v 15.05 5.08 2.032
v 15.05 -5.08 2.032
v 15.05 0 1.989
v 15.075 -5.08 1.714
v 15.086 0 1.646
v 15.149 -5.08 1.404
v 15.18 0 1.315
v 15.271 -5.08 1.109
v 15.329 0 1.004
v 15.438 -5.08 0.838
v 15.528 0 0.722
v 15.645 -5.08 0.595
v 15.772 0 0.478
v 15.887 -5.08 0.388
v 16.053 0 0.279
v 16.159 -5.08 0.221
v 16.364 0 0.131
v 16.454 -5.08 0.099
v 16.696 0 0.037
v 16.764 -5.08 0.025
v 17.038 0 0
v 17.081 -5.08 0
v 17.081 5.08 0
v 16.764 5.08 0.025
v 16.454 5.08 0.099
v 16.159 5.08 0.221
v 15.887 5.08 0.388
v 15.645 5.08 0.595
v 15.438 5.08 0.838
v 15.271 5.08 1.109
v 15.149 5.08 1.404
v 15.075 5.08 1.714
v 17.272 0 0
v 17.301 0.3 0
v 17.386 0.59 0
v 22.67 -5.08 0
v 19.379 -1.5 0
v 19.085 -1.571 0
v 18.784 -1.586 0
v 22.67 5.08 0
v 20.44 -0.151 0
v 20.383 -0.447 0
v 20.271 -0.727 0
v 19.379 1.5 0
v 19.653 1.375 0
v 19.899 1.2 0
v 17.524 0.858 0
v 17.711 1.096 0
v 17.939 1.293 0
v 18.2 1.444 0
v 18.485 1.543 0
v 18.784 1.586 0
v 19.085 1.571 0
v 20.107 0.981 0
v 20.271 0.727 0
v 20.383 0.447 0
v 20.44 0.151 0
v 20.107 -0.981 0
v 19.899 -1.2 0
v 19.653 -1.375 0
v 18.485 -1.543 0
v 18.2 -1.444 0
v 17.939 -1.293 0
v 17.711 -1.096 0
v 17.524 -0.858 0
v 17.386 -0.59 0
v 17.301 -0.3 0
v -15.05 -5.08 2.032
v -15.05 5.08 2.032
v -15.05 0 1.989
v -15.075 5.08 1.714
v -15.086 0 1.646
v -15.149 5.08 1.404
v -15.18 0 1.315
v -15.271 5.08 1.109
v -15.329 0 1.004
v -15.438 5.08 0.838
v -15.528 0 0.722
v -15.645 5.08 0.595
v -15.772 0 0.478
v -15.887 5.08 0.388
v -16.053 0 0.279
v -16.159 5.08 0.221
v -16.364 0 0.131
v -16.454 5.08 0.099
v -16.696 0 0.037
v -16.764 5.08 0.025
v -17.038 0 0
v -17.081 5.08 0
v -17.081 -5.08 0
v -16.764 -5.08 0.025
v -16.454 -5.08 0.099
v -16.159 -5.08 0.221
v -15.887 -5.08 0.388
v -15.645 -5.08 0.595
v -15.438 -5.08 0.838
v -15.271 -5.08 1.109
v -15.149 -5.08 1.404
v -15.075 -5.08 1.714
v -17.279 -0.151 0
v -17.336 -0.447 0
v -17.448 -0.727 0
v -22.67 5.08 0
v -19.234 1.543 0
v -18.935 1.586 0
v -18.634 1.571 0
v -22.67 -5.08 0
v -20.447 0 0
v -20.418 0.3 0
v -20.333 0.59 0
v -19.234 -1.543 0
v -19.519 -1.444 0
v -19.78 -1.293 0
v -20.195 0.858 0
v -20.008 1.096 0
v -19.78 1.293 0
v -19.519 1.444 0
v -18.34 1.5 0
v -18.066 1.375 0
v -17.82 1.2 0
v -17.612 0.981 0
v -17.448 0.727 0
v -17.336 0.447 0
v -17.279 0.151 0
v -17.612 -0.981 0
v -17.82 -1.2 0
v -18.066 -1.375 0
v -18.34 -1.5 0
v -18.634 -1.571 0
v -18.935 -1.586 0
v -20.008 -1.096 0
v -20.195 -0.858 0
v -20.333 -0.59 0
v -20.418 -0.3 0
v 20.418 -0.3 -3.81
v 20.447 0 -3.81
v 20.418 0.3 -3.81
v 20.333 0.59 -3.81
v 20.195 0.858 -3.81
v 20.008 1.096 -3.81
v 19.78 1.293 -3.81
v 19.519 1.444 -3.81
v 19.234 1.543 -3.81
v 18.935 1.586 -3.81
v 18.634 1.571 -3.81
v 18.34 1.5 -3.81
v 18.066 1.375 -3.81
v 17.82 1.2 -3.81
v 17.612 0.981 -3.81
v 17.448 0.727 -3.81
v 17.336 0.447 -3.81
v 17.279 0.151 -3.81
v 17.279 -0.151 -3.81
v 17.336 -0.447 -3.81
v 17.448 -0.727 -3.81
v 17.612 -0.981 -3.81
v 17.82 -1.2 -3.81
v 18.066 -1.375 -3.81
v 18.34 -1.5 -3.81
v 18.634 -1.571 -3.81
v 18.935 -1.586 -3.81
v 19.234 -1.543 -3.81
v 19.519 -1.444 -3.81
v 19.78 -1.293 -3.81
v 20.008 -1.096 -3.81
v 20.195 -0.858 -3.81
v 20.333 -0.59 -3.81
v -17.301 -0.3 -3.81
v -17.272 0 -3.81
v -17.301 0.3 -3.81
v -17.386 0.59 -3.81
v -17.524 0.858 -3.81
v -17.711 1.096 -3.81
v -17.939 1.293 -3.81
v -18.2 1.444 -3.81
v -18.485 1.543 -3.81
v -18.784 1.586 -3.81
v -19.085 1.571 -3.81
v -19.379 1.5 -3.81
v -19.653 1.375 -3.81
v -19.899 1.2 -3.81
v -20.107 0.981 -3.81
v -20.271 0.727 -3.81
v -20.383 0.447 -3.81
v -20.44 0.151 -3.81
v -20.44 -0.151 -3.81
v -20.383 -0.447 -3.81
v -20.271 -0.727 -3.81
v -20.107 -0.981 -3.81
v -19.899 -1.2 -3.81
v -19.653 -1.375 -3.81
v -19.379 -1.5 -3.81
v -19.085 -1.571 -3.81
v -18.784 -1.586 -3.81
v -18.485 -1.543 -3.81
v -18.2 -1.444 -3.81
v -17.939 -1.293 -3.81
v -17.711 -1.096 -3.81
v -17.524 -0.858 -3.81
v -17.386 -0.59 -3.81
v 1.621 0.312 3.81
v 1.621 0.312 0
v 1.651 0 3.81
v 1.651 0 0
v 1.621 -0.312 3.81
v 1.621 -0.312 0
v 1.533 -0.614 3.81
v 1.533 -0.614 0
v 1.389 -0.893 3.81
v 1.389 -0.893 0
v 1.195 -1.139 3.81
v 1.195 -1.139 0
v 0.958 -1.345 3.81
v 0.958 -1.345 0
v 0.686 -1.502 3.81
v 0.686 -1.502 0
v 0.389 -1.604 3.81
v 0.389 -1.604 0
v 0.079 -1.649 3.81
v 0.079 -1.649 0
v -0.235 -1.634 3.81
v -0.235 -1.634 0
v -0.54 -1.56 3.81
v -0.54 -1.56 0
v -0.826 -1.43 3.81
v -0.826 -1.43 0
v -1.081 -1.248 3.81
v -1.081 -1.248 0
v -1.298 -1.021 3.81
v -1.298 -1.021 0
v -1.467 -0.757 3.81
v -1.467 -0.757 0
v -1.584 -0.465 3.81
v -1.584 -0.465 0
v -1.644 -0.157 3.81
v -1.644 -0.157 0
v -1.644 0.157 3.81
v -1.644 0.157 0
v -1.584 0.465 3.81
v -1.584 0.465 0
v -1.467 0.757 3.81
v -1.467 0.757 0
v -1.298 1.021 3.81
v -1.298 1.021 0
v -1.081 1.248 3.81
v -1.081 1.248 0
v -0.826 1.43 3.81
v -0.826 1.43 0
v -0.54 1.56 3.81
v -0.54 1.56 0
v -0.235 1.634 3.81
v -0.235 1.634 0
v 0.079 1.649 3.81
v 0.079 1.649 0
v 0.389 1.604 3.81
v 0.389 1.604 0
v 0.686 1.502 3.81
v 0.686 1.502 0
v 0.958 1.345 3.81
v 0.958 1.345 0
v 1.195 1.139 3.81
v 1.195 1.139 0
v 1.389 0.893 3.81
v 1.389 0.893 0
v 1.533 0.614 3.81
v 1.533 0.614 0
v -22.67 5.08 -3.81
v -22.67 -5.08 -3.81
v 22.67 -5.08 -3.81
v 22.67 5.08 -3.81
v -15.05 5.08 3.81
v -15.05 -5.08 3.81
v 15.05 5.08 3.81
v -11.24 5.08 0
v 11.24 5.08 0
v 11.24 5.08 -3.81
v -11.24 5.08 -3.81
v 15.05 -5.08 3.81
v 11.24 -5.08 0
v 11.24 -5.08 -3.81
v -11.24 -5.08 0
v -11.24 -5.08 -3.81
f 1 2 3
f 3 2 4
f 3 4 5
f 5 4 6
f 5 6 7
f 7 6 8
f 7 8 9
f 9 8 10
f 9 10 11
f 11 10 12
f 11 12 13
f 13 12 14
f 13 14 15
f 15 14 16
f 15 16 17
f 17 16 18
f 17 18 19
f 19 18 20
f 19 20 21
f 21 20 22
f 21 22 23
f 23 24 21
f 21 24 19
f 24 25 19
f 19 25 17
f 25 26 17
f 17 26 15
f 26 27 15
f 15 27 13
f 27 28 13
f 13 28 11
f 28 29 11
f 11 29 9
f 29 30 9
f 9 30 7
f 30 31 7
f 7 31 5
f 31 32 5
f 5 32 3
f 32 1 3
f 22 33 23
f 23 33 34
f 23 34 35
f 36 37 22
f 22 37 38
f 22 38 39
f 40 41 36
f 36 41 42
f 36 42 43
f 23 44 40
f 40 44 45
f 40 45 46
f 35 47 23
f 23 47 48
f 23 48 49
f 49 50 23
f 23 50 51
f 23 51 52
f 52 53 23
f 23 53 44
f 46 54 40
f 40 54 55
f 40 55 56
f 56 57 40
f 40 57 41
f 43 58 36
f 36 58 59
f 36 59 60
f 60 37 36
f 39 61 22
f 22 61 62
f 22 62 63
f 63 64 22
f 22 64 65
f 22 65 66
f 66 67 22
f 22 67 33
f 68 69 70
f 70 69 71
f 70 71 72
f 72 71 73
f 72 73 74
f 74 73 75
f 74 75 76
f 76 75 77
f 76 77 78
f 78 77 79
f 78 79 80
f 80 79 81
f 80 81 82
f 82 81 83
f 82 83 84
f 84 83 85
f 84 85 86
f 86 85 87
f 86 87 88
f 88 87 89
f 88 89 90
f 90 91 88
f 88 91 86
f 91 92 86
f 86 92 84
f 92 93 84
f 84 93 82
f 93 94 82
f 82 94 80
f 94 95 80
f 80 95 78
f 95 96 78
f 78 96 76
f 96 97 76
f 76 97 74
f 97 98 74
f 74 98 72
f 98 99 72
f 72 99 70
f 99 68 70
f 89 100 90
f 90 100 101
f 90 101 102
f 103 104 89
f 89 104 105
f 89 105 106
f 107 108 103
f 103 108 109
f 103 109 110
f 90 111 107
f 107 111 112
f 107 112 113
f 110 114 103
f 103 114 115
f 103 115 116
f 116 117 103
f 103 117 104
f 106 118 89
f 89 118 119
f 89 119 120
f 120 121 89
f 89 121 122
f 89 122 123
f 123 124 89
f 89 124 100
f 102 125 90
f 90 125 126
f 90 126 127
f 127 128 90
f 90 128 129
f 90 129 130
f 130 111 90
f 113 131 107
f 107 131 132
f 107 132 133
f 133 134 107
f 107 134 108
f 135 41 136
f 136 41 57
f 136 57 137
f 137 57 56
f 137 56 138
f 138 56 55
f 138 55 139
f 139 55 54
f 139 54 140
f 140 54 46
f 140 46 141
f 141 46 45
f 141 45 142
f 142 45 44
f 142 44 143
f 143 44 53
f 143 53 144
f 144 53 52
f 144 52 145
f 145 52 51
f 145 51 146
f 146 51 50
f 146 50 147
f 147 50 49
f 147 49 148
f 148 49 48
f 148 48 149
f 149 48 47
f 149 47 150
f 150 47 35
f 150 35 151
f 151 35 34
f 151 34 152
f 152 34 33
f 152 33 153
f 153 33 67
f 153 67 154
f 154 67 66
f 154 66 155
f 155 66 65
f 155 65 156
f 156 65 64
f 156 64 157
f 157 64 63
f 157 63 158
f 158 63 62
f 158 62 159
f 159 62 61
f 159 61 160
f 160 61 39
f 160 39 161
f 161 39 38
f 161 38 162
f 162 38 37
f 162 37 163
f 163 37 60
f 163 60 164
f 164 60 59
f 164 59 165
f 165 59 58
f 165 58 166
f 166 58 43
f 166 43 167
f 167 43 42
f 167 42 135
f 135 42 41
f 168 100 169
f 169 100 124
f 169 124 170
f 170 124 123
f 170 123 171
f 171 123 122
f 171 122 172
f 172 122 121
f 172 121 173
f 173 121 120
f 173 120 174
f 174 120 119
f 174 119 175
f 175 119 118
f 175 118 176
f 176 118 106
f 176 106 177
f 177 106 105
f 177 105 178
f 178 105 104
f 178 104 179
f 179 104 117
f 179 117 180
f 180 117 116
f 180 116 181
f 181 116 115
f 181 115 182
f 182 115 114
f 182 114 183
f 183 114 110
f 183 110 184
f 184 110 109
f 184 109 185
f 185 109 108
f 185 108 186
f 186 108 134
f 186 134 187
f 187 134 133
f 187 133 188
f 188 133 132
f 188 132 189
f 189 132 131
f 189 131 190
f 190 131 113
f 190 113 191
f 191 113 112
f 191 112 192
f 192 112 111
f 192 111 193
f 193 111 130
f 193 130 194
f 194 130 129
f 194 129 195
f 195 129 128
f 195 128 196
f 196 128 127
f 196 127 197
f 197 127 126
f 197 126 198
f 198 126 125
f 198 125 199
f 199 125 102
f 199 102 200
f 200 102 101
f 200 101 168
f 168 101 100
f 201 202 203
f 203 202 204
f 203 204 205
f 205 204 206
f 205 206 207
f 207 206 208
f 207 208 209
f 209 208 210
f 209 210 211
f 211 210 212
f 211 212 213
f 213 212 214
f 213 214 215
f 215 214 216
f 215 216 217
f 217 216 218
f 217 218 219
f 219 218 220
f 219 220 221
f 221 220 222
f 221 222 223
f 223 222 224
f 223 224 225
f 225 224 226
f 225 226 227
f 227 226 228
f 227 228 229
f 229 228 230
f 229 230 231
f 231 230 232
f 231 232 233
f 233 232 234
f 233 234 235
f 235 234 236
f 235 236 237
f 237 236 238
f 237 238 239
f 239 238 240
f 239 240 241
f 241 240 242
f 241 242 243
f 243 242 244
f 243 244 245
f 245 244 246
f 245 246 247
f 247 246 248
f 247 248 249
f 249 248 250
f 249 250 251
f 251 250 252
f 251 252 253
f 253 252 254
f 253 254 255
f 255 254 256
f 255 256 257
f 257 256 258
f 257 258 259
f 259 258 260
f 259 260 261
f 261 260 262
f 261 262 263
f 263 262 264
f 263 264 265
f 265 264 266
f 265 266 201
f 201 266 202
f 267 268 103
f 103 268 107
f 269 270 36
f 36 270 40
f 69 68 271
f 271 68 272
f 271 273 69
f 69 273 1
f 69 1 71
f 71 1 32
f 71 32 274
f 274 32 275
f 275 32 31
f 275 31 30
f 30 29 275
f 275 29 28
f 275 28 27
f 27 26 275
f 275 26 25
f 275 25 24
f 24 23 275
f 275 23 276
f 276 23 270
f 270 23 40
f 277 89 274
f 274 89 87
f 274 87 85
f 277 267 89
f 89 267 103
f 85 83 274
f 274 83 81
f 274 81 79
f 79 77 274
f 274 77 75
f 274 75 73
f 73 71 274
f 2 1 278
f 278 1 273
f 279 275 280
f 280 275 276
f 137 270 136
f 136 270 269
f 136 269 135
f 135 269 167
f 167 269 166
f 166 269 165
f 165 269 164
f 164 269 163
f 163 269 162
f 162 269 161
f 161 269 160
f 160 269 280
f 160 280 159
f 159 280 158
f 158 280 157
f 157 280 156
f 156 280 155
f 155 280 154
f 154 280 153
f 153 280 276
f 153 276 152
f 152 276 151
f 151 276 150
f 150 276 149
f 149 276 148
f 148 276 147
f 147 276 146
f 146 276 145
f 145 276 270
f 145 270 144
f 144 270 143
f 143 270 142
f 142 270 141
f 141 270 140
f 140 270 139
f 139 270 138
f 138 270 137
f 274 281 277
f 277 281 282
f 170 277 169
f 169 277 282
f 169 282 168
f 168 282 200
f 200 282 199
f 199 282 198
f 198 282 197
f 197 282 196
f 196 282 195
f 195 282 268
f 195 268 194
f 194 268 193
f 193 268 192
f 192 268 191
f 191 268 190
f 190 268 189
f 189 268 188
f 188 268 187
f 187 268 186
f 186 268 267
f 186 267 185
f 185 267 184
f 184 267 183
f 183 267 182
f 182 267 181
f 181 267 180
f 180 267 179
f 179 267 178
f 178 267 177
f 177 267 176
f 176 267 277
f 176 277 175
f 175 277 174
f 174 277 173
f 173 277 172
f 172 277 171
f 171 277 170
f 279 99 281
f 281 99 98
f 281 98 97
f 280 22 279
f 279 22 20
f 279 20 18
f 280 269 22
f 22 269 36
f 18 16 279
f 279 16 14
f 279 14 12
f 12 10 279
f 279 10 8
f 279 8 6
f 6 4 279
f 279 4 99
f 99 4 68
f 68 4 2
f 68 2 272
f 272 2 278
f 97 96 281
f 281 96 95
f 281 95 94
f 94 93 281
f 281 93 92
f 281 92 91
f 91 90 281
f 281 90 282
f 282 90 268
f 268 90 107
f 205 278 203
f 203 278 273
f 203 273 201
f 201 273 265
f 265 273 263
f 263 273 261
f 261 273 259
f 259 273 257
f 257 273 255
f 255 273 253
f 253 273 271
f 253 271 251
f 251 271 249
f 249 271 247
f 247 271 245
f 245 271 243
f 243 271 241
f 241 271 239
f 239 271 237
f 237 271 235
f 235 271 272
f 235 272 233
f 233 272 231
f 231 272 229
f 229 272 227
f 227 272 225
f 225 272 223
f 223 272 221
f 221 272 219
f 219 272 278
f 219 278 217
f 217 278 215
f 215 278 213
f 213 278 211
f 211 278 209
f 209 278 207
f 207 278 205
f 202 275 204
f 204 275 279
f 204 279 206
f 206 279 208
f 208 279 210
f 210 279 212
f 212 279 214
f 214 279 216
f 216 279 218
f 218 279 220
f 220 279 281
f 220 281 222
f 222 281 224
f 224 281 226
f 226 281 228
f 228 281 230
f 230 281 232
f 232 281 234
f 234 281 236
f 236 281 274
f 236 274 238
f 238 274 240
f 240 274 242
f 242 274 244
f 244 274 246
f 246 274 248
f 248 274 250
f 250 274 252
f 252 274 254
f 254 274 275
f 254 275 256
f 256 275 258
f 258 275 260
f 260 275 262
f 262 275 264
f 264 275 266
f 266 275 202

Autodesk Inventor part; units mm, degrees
ref_plane "YZ Plane" through (0, 0, 0) normal (1, 0, 0) x (0, 1, 0)
ref_plane "XZ Plane" through (0, 0, 0) normal (0, 1, 0) x (-1, 0, 0)
ref_plane "XY Plane" through (0, 0, 0) normal (0, 0, 1) x (1, 0, 0)
sketch "Sketch1" plane through (0, 0, 0) normal (0, 0, 1) x (1, 0, 0)
  line L0 (-11.2395, -5.08) -> (11.2395, -5.08)
  line L1 (11.2395, -5.08) -> (11.2395, 5.08)
  line L2 (11.2395, 5.08) -> (-11.2395, 5.08)
  line L3 (-11.2395, 5.08) -> (-11.2395, -5.08)
  line L4 (-11.2395, -5.08) -> (11.2395, 5.08) construction
  line L5 (11.2395, -5.08) -> (-11.2395, 5.08) construction
  point P0 (0, 0)
  dimension "d0" = 22.479
  dimension "d1" = 10.16
extrude "Extrusion1" add sketch "Sketch1" along normal blind 3.81
sketch "Sketch2" plane through (0, 0, 3.81) normal (0, 0, 1) x (1, 0, 0)
  line L0 (11.2395, 5.08) -> (-11.2395, 5.08) projected
  line L1 (-11.2395, 5.08) -> (-15.0495, 5.08)
  line L2 (-15.0495, 5.08) -> (-15.0495, -5.08)
  line L3 (-15.0495, -5.08) -> (-11.2395, -5.08)
  line L4 (-11.2395, -5.08) -> (-11.2395, 5.08)
  line L5 (11.2395, -5.08) -> (11.2395, 5.08) projected
  line L6 (11.2395, 5.08) -> (15.0495, 5.08)
  line L7 (15.0495, 5.08) -> (15.0495, -5.08)
  line L8 (15.0495, -5.08) -> (11.2395, -5.08)
  line L9 (11.2395, -5.08) -> (11.2395, 5.08)
  point P0 (0, 0)
  dimension "d4" = 3.81
  dimension "d5" = 10.16
  dimension "d6" = 3.81
extrude "Extrusion2" add sketch "Sketch2" against normal blind 7.62
sketch "Sketch3" plane through (0, 0, -3.81) normal (0, 0, -1) x (-1, 0, 0)
  line L0 (-11.2395, -5.08) -> (-11.2395, 5.08) projected
  line L1 (-11.2395, 5.08) -> (-22.6695, 5.08)
  line L2 (-22.6695, 5.08) -> (-22.6695, -5.08)
  line L3 (-22.6695, -5.08) -> (-11.2395, -5.08)
  line L4 (-11.2395, -5.08) -> (-11.2395, 5.08)
  line L5 (11.2395, 5.08) -> (11.2395, -5.08) projected
  line L6 (11.2395, 5.08) -> (22.6695, 5.08)
  line L7 (22.6695, 5.08) -> (22.6695, -5.08)
  line L8 (22.6695, -5.08) -> (11.2395, -5.08)
  line L9 (11.2395, -5.08) -> (11.2395, 5.08)
  point P0 (0, 0)
  dimension "d9" = 11.43
  dimension "d10" = 10.16
  dimension "d11" = 11.43
  dimension "d12" = 10.16
extrude "Extrusion3" add sketch "Sketch3" against normal blind 3.81
sketch "Sketch4" plane through (0, 0, 0) normal (0, 0, -1) x (-1, 0, 0)
  circle A0 centre (0, 0) radius 1.651
  dimension "d15" = 3.302
extrude "Extrusion4" cut sketch "Sketch4" against normal through all
sketch "Sketch5" plane through (0, 0, 0) normal (0, 0, 1) x (1, 0, 0)
  line L0 (15.0495, -5.08) -> (22.6695, -5.08) projected
  line L1 (-22.6695, -5.08) -> (-15.0495, -5.08) projected
  line L2 (22.6695, -5.08) -> (22.6695, 5.08) projected
  line L3 (-22.6695, 5.08) -> (-22.6695, -5.08) projected
  point P0 (0, 0)
  point P1 (-18.8595, 0)
  point P2 (18.8595, 0)
  dimension "d18" = 5.08
  dimension "d19" = 5.08
  dimension "d20" = 3.81
  dimension "d21" = 3.81
hole "Hole1" at (-18.8595, 0, 0) at (18.8595, 0, 0) direction (0, 0, -1) diameter 3.175 end through all
fillet "Fillet1" radius 2.032 2 edges at (15.0495, 0, 0) (-15.0495, 0, 0)
properties part number "LowerSpringMount"
